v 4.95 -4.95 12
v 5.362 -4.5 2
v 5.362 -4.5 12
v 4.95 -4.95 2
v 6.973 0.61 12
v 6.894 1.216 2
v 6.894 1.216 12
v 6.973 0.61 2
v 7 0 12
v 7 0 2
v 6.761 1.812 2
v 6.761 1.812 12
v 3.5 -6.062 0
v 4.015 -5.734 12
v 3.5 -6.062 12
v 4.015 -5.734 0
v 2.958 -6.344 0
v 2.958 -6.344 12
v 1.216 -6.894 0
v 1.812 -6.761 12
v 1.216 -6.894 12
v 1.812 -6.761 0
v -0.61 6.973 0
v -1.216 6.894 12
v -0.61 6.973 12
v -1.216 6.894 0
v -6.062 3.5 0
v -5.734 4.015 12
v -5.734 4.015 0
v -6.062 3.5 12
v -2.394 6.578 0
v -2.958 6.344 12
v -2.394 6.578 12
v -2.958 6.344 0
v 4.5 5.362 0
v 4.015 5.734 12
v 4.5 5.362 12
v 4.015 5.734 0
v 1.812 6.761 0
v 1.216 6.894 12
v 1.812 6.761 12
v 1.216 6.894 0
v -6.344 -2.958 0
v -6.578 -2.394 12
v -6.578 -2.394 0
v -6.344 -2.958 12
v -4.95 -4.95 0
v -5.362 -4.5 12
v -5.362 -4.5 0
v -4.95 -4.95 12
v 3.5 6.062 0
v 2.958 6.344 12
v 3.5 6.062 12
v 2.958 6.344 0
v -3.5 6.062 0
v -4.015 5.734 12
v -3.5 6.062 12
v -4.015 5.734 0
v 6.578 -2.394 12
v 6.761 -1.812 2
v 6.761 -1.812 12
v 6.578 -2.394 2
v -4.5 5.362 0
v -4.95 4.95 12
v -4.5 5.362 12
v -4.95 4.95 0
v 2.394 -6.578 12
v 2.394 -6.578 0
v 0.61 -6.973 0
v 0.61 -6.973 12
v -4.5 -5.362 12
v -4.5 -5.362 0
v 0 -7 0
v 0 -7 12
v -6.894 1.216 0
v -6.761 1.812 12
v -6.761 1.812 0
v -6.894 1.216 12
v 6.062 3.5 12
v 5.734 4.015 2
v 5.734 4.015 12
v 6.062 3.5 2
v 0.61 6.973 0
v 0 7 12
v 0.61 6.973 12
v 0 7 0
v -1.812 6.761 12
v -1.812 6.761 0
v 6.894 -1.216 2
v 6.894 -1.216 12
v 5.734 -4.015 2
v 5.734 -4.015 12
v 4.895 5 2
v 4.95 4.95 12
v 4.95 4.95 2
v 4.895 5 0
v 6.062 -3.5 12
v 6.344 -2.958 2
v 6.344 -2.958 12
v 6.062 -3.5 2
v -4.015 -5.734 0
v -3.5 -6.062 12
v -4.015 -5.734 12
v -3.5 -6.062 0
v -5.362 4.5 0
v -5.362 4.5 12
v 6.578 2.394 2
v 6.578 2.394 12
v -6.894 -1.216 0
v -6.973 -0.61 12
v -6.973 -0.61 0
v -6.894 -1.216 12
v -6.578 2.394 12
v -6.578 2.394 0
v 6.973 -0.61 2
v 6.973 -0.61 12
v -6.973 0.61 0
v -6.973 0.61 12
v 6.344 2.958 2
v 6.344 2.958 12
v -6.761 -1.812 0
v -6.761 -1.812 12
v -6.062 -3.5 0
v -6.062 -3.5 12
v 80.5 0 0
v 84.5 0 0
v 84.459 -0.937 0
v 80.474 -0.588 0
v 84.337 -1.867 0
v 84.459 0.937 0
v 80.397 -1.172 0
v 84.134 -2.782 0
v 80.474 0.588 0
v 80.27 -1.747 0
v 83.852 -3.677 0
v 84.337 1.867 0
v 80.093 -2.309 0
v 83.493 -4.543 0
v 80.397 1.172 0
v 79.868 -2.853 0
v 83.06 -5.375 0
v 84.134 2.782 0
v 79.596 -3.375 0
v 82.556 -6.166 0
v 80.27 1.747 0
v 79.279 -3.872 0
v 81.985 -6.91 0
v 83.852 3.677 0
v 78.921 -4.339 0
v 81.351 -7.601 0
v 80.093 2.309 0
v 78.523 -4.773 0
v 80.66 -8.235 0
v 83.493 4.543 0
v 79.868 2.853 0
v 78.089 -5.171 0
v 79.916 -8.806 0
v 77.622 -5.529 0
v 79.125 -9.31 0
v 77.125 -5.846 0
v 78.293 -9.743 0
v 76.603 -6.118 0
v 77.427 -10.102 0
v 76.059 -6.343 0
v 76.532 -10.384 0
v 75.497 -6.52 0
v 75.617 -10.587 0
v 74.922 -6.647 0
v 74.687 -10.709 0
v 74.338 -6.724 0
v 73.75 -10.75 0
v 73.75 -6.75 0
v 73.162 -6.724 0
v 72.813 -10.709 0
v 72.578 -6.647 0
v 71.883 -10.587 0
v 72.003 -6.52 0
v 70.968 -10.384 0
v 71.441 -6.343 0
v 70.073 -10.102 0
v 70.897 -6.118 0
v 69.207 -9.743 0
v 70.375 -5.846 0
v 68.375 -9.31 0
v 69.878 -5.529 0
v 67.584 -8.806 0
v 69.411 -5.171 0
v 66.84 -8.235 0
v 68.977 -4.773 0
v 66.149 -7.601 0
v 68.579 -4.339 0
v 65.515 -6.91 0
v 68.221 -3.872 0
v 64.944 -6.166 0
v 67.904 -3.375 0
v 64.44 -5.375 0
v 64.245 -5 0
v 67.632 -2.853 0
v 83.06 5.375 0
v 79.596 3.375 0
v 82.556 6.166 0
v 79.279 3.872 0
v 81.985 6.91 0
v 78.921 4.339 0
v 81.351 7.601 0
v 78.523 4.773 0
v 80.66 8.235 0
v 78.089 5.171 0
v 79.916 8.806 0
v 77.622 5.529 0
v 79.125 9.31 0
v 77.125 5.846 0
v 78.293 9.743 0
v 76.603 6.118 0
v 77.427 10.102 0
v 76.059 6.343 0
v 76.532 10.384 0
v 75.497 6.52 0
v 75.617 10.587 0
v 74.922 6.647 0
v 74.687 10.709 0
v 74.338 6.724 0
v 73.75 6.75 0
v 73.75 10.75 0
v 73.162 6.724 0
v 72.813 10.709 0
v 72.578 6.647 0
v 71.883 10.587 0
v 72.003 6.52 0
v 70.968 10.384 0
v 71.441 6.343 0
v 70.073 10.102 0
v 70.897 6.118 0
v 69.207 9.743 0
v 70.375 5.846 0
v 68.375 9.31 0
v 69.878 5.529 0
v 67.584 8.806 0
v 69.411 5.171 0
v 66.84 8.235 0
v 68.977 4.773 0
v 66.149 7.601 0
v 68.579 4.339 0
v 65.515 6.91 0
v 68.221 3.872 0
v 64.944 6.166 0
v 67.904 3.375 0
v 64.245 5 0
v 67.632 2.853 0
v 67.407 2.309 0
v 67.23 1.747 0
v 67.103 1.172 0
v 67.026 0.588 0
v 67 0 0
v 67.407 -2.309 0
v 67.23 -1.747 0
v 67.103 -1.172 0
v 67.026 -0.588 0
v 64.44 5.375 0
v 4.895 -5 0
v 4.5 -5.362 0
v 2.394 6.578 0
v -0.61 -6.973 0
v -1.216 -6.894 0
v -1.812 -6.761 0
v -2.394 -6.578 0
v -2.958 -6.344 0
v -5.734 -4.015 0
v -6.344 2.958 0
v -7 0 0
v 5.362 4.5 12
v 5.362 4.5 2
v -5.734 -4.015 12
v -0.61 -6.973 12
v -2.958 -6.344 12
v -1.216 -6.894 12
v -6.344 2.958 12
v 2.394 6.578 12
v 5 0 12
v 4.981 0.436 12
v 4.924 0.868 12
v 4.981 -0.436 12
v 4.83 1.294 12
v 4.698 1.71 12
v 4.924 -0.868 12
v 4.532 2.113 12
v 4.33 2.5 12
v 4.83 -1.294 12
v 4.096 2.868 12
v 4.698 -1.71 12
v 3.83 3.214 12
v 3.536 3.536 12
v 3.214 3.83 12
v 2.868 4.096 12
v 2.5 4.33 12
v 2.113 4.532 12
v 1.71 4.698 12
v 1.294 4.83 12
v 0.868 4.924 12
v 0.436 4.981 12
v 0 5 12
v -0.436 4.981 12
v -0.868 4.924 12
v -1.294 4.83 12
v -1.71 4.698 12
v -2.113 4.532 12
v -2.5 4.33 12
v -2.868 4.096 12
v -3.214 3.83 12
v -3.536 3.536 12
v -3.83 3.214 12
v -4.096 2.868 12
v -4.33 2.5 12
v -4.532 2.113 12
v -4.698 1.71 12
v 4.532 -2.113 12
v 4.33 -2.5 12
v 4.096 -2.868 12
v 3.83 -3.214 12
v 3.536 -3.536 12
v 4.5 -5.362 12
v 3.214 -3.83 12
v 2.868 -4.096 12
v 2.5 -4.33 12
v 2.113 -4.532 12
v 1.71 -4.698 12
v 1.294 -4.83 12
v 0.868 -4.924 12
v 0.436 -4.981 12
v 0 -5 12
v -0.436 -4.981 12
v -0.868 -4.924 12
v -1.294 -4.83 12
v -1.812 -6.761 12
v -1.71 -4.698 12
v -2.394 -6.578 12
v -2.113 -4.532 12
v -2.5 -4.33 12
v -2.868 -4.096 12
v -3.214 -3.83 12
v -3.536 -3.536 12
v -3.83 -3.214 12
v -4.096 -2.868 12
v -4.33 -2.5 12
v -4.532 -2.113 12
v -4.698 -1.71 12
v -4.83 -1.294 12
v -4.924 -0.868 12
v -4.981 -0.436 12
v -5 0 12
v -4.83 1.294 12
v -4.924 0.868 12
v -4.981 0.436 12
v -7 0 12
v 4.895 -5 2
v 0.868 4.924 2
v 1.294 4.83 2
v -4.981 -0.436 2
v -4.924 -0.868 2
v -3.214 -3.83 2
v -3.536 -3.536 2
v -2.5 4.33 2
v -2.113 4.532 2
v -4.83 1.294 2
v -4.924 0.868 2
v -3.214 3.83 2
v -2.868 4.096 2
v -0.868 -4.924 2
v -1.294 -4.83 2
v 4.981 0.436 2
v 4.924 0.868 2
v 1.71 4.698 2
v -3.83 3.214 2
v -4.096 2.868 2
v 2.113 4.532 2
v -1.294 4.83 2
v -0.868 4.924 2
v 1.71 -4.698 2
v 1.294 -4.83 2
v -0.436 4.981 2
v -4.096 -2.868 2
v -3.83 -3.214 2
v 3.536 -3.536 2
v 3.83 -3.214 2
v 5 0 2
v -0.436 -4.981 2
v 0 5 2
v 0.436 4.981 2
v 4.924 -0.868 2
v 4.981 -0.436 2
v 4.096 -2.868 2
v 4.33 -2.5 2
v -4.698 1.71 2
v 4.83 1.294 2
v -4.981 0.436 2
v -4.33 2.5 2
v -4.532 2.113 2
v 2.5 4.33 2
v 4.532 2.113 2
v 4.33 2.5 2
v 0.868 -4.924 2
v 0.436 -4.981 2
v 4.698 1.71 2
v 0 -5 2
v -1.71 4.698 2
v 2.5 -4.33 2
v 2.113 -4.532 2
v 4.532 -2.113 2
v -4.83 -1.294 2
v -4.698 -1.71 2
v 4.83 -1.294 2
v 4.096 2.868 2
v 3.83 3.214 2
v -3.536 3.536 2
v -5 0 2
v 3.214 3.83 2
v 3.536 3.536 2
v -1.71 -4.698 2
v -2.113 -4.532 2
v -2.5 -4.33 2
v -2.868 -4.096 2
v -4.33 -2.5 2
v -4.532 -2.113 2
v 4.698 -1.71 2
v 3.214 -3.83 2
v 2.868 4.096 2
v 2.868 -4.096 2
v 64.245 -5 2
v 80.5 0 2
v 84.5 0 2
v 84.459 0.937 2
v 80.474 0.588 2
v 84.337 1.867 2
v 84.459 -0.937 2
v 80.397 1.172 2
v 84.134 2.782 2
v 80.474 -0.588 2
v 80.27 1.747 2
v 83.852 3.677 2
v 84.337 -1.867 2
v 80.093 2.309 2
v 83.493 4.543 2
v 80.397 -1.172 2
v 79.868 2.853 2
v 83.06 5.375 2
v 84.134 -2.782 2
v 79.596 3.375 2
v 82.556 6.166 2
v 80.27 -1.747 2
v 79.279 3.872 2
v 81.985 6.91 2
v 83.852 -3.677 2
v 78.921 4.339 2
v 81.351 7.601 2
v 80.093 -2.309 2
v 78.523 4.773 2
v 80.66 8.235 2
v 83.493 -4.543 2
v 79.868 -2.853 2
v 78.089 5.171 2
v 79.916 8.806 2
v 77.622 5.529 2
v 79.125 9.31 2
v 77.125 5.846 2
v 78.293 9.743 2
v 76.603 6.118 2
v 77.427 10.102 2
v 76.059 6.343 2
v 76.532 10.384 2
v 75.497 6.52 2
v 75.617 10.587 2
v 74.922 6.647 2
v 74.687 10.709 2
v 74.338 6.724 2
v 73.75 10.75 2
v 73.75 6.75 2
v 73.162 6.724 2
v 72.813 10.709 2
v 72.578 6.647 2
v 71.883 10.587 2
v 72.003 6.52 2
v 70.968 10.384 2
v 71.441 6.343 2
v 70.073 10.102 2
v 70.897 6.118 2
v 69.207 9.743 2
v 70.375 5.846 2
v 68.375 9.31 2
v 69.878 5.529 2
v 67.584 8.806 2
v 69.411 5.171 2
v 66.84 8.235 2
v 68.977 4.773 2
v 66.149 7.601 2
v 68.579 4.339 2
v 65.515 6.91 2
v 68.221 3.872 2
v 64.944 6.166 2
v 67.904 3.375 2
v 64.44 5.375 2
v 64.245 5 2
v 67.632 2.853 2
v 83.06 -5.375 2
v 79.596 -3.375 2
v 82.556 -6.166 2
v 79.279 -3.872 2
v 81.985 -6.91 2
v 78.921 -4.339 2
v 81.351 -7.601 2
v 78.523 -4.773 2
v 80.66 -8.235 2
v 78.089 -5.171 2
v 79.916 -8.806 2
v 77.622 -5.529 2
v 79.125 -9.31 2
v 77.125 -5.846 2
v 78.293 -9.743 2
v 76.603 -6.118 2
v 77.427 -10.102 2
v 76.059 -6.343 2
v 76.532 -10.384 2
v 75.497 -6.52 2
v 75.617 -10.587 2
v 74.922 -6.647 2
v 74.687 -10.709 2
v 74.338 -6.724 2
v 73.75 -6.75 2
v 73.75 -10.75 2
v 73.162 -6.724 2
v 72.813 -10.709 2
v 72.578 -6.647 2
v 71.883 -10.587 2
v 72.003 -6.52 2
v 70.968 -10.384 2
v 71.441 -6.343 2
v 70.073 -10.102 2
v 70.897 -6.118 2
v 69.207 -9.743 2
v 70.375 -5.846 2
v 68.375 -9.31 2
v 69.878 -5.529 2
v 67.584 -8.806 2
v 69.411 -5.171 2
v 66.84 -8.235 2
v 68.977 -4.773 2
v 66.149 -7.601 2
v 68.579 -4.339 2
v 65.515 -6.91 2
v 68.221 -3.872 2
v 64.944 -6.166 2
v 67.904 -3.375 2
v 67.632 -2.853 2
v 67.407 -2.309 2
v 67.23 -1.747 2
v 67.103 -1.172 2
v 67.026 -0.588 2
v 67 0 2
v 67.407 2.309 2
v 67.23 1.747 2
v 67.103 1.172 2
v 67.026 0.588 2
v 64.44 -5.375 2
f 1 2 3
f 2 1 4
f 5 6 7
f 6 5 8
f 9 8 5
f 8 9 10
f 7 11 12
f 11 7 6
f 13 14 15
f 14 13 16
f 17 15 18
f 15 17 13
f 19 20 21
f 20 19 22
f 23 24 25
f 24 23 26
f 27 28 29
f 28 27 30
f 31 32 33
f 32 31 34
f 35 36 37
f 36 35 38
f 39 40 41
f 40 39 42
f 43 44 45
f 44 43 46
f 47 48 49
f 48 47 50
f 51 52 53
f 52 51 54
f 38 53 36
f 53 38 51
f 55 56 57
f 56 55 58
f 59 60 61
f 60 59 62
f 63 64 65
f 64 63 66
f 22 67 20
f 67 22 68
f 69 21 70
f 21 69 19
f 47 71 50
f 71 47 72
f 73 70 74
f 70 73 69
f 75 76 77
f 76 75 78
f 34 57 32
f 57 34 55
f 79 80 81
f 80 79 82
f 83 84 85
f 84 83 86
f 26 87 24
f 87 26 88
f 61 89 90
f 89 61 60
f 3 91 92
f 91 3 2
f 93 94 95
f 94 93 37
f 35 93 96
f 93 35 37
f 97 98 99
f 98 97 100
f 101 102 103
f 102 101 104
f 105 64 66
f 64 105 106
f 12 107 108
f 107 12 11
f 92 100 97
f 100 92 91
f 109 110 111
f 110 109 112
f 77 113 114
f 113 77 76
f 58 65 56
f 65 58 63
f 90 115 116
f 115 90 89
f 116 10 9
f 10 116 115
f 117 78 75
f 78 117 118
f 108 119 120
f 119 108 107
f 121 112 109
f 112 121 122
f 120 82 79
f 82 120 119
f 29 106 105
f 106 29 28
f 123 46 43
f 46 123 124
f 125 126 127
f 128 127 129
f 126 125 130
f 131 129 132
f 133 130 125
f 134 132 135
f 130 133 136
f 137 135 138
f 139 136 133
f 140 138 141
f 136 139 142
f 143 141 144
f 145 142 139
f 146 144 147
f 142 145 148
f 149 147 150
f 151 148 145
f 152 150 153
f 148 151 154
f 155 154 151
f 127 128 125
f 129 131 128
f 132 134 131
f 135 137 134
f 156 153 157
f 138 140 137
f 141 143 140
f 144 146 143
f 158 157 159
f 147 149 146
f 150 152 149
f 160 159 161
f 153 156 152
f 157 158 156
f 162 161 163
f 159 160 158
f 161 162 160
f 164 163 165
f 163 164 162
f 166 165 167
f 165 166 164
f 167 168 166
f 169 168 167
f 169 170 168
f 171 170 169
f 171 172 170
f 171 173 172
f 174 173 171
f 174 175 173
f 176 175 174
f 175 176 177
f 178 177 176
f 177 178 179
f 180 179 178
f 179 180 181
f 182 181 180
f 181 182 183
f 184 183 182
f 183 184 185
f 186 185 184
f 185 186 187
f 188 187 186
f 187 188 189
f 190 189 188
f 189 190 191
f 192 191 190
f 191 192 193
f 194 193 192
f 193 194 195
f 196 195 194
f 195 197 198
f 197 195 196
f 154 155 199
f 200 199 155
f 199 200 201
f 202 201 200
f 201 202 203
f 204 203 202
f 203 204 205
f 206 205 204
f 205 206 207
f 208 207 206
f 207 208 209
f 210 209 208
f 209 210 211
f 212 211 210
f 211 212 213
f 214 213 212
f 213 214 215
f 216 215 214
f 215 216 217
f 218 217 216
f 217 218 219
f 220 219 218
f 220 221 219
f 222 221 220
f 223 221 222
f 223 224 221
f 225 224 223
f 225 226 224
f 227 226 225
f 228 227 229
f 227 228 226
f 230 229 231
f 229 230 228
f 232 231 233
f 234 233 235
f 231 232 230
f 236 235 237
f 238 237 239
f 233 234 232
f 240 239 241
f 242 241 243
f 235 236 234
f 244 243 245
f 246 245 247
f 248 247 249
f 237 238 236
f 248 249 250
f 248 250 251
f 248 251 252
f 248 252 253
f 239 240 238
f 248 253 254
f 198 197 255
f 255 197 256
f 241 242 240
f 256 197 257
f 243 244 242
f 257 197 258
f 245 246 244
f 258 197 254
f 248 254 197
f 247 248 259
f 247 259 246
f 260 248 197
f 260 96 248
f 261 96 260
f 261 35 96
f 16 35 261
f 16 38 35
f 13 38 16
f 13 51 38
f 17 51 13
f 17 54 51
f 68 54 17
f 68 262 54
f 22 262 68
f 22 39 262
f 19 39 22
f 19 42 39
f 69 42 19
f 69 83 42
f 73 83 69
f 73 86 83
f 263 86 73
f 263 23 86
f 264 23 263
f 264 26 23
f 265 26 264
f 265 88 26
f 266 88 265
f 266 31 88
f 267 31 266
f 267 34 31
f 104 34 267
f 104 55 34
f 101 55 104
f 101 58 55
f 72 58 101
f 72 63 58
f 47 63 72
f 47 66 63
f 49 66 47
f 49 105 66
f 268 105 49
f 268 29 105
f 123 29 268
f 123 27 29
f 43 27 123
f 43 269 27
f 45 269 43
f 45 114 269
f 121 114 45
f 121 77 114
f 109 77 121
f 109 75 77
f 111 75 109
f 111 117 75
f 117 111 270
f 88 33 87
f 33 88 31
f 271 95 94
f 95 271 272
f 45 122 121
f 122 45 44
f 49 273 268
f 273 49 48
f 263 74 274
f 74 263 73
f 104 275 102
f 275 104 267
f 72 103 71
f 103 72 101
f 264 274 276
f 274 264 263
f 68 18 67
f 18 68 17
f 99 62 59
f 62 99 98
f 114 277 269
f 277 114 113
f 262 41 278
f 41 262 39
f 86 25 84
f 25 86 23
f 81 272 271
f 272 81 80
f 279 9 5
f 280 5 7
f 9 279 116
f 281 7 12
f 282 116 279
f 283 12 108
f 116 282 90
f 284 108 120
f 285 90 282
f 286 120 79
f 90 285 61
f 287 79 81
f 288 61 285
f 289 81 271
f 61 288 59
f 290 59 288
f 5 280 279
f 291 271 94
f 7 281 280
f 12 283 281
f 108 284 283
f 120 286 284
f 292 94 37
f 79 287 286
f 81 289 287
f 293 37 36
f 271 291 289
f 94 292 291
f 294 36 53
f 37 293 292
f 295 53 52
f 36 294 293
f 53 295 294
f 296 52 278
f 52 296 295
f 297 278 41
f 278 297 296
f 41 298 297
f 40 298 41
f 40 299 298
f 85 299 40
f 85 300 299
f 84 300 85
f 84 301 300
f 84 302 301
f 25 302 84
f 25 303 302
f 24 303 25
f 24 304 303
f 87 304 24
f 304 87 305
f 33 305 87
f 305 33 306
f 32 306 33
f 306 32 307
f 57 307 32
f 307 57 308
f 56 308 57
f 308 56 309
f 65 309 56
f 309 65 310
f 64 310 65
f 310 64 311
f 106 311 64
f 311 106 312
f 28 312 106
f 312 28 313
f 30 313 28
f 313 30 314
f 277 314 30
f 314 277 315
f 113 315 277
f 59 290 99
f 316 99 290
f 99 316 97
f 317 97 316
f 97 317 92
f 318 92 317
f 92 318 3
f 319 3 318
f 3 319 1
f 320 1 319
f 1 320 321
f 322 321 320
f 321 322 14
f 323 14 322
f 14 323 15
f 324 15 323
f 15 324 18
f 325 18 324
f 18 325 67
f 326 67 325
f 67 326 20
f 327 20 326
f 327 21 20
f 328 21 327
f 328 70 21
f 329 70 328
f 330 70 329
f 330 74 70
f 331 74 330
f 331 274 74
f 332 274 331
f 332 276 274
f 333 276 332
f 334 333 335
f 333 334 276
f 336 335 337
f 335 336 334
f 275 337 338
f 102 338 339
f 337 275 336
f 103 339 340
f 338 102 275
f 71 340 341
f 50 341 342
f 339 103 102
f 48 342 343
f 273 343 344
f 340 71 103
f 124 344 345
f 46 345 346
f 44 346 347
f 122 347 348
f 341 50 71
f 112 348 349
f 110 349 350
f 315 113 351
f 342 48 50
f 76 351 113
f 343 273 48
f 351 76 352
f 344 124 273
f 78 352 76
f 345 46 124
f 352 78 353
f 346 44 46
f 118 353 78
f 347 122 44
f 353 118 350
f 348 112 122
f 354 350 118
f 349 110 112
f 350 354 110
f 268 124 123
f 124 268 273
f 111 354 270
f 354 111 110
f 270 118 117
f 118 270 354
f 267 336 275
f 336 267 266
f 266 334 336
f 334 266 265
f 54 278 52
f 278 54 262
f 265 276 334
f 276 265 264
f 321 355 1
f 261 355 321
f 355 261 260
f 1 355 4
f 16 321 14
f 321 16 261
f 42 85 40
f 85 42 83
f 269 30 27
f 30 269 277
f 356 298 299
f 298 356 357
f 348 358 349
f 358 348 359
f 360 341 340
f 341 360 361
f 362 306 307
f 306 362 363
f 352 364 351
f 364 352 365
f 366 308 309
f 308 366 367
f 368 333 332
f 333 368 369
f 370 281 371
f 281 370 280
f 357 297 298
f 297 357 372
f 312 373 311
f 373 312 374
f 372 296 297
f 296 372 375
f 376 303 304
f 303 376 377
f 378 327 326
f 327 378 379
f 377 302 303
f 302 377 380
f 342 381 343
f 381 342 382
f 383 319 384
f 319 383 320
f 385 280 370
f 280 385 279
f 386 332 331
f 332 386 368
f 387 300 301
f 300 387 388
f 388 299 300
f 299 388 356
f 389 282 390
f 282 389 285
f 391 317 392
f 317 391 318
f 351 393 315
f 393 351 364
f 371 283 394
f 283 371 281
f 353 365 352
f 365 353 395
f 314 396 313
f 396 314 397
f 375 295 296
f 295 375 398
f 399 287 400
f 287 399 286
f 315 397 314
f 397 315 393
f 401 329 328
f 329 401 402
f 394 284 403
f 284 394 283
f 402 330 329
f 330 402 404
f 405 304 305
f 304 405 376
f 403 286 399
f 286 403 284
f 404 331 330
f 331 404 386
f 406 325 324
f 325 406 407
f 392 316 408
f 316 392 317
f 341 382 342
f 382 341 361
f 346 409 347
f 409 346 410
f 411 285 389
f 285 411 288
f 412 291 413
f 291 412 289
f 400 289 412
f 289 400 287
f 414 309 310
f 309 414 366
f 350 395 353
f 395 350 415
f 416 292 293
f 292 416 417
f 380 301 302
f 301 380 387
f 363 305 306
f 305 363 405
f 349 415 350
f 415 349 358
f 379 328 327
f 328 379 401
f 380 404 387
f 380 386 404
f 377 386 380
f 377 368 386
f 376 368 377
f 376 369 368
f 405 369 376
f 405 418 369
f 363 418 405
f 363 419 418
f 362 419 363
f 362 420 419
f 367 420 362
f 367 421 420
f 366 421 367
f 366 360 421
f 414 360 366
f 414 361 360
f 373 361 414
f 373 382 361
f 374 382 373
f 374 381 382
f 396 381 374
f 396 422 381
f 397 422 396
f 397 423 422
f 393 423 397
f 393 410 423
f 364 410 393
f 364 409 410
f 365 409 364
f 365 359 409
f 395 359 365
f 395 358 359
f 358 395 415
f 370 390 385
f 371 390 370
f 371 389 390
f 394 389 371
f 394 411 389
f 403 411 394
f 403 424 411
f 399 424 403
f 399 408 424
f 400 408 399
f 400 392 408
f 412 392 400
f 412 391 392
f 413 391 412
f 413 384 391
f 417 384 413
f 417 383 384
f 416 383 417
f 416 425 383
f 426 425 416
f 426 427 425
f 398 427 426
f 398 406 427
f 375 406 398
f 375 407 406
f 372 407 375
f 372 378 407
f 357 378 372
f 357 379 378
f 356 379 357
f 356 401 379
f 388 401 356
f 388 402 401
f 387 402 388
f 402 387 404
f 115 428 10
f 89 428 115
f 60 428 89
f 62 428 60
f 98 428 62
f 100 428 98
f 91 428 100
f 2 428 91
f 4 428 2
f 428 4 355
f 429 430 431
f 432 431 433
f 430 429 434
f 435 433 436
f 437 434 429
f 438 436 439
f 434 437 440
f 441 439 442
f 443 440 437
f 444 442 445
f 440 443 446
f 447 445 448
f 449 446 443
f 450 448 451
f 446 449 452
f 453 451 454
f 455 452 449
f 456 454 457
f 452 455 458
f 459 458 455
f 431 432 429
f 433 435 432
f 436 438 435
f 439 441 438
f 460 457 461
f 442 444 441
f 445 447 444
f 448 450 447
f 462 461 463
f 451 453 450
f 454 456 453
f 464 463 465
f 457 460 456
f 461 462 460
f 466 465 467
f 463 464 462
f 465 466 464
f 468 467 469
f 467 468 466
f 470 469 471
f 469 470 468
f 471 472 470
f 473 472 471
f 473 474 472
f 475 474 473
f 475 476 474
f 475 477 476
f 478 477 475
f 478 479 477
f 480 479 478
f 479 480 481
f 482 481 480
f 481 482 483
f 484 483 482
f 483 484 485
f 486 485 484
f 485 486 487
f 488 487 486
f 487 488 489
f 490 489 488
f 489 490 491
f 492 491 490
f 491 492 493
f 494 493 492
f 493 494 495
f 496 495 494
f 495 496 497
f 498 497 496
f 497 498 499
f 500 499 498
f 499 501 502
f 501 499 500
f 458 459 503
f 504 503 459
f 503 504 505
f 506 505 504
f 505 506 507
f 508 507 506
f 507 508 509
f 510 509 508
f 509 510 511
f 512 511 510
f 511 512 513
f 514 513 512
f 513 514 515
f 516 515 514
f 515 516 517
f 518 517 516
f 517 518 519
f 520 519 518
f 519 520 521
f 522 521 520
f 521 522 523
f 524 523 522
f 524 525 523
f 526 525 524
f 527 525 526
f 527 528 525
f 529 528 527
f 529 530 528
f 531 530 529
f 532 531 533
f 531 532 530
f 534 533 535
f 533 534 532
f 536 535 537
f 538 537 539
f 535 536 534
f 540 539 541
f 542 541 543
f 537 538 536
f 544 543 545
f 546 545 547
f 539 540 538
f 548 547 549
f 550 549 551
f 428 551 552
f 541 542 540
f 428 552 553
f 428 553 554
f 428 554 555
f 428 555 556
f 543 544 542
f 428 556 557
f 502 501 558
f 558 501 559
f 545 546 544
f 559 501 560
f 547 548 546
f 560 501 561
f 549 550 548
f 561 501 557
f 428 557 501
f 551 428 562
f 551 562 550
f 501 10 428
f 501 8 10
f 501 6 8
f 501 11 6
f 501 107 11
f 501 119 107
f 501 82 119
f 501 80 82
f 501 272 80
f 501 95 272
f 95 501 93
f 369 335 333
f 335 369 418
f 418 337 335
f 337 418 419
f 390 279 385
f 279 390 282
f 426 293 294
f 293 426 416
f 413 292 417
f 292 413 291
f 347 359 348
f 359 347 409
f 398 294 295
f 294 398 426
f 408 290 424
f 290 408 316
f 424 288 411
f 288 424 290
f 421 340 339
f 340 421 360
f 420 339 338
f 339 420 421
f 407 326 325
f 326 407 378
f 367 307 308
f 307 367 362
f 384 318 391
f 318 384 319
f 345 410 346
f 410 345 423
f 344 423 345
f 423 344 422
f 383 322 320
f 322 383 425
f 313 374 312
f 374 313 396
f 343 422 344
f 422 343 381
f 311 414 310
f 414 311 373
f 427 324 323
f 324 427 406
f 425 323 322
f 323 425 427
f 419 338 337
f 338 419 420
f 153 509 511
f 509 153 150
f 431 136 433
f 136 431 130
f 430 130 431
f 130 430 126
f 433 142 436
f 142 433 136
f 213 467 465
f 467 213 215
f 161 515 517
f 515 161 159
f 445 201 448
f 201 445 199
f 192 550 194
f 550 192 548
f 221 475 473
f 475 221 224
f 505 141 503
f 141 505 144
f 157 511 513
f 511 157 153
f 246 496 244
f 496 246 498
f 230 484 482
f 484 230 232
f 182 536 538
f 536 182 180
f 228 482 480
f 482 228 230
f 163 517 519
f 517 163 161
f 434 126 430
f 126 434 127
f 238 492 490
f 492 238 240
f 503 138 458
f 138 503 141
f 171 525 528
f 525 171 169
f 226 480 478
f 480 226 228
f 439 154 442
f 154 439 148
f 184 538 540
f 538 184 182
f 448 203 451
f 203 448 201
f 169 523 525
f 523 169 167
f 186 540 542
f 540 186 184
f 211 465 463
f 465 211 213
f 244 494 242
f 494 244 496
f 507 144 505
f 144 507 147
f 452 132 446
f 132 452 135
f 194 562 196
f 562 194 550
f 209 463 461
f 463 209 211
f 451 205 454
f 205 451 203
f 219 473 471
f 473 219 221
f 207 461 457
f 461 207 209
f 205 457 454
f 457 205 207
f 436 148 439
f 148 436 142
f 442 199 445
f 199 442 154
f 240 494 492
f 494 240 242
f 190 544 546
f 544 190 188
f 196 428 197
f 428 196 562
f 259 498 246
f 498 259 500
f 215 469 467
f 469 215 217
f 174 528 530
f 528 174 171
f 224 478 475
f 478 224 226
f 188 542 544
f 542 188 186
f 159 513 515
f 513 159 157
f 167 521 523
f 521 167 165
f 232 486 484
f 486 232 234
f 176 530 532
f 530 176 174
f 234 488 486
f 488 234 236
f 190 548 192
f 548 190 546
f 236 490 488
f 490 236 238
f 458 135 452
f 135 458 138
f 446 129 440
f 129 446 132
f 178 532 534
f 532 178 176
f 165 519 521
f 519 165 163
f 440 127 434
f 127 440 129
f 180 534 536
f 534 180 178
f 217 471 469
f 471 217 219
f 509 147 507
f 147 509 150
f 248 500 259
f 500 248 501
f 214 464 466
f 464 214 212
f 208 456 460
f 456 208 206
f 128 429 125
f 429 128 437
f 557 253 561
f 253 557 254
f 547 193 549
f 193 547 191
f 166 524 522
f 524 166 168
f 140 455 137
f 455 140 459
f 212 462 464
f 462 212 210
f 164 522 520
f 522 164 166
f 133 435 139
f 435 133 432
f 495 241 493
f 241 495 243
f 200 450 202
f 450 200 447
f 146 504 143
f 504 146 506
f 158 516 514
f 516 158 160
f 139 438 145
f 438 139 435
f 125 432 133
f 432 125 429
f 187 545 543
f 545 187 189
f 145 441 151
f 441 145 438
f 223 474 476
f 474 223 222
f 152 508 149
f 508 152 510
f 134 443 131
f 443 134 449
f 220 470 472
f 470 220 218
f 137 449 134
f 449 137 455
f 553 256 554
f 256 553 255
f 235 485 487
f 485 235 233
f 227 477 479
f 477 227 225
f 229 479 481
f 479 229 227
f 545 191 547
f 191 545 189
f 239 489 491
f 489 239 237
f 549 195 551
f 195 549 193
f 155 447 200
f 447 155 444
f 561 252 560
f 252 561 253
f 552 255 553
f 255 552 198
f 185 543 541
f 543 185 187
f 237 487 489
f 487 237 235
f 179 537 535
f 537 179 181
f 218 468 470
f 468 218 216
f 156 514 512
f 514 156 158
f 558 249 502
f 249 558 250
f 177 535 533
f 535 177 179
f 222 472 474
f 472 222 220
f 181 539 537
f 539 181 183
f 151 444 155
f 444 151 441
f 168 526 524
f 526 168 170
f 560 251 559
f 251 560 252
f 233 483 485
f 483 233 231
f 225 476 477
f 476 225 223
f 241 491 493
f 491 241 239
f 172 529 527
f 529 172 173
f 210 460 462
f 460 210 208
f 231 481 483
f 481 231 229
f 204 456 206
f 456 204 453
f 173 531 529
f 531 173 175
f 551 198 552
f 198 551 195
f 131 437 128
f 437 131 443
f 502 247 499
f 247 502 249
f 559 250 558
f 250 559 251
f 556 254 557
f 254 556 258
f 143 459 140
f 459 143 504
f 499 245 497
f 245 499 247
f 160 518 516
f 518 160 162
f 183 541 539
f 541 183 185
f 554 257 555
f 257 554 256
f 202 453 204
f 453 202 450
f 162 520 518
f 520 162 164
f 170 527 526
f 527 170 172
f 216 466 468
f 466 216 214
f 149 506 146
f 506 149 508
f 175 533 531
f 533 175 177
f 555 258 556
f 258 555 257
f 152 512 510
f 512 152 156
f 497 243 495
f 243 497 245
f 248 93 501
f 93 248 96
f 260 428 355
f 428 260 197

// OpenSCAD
$fn = 72;
thickness = 2.0;
thread_diameter = 13.5;
strap_length = 60;
cap_diameter = 10;
cap_depth = 10;
loop_width = 4;

strap_loop_offset = strap_length + thickness + (cap_diameter / 2);

union() {
    difference() {
        cylinder(cap_depth + thickness, d=cap_diameter + (thickness * 2));
        translate([0,0,thickness]) {
            cylinder(cap_depth, d=cap_diameter);
        }
    }

    translate([0,-1 * (cap_diameter / 2),0]) {
        cube([strap_loop_offset, cap_diameter, thickness]);
    }

    translate([strap_loop_offset + (thread_diameter / 2),0,0]) {
        difference() {
            cylinder(thickness, d=thread_diameter + (loop_width * 2));
            cylinder(thickness, d=thread_diameter);
        }
    }
}
